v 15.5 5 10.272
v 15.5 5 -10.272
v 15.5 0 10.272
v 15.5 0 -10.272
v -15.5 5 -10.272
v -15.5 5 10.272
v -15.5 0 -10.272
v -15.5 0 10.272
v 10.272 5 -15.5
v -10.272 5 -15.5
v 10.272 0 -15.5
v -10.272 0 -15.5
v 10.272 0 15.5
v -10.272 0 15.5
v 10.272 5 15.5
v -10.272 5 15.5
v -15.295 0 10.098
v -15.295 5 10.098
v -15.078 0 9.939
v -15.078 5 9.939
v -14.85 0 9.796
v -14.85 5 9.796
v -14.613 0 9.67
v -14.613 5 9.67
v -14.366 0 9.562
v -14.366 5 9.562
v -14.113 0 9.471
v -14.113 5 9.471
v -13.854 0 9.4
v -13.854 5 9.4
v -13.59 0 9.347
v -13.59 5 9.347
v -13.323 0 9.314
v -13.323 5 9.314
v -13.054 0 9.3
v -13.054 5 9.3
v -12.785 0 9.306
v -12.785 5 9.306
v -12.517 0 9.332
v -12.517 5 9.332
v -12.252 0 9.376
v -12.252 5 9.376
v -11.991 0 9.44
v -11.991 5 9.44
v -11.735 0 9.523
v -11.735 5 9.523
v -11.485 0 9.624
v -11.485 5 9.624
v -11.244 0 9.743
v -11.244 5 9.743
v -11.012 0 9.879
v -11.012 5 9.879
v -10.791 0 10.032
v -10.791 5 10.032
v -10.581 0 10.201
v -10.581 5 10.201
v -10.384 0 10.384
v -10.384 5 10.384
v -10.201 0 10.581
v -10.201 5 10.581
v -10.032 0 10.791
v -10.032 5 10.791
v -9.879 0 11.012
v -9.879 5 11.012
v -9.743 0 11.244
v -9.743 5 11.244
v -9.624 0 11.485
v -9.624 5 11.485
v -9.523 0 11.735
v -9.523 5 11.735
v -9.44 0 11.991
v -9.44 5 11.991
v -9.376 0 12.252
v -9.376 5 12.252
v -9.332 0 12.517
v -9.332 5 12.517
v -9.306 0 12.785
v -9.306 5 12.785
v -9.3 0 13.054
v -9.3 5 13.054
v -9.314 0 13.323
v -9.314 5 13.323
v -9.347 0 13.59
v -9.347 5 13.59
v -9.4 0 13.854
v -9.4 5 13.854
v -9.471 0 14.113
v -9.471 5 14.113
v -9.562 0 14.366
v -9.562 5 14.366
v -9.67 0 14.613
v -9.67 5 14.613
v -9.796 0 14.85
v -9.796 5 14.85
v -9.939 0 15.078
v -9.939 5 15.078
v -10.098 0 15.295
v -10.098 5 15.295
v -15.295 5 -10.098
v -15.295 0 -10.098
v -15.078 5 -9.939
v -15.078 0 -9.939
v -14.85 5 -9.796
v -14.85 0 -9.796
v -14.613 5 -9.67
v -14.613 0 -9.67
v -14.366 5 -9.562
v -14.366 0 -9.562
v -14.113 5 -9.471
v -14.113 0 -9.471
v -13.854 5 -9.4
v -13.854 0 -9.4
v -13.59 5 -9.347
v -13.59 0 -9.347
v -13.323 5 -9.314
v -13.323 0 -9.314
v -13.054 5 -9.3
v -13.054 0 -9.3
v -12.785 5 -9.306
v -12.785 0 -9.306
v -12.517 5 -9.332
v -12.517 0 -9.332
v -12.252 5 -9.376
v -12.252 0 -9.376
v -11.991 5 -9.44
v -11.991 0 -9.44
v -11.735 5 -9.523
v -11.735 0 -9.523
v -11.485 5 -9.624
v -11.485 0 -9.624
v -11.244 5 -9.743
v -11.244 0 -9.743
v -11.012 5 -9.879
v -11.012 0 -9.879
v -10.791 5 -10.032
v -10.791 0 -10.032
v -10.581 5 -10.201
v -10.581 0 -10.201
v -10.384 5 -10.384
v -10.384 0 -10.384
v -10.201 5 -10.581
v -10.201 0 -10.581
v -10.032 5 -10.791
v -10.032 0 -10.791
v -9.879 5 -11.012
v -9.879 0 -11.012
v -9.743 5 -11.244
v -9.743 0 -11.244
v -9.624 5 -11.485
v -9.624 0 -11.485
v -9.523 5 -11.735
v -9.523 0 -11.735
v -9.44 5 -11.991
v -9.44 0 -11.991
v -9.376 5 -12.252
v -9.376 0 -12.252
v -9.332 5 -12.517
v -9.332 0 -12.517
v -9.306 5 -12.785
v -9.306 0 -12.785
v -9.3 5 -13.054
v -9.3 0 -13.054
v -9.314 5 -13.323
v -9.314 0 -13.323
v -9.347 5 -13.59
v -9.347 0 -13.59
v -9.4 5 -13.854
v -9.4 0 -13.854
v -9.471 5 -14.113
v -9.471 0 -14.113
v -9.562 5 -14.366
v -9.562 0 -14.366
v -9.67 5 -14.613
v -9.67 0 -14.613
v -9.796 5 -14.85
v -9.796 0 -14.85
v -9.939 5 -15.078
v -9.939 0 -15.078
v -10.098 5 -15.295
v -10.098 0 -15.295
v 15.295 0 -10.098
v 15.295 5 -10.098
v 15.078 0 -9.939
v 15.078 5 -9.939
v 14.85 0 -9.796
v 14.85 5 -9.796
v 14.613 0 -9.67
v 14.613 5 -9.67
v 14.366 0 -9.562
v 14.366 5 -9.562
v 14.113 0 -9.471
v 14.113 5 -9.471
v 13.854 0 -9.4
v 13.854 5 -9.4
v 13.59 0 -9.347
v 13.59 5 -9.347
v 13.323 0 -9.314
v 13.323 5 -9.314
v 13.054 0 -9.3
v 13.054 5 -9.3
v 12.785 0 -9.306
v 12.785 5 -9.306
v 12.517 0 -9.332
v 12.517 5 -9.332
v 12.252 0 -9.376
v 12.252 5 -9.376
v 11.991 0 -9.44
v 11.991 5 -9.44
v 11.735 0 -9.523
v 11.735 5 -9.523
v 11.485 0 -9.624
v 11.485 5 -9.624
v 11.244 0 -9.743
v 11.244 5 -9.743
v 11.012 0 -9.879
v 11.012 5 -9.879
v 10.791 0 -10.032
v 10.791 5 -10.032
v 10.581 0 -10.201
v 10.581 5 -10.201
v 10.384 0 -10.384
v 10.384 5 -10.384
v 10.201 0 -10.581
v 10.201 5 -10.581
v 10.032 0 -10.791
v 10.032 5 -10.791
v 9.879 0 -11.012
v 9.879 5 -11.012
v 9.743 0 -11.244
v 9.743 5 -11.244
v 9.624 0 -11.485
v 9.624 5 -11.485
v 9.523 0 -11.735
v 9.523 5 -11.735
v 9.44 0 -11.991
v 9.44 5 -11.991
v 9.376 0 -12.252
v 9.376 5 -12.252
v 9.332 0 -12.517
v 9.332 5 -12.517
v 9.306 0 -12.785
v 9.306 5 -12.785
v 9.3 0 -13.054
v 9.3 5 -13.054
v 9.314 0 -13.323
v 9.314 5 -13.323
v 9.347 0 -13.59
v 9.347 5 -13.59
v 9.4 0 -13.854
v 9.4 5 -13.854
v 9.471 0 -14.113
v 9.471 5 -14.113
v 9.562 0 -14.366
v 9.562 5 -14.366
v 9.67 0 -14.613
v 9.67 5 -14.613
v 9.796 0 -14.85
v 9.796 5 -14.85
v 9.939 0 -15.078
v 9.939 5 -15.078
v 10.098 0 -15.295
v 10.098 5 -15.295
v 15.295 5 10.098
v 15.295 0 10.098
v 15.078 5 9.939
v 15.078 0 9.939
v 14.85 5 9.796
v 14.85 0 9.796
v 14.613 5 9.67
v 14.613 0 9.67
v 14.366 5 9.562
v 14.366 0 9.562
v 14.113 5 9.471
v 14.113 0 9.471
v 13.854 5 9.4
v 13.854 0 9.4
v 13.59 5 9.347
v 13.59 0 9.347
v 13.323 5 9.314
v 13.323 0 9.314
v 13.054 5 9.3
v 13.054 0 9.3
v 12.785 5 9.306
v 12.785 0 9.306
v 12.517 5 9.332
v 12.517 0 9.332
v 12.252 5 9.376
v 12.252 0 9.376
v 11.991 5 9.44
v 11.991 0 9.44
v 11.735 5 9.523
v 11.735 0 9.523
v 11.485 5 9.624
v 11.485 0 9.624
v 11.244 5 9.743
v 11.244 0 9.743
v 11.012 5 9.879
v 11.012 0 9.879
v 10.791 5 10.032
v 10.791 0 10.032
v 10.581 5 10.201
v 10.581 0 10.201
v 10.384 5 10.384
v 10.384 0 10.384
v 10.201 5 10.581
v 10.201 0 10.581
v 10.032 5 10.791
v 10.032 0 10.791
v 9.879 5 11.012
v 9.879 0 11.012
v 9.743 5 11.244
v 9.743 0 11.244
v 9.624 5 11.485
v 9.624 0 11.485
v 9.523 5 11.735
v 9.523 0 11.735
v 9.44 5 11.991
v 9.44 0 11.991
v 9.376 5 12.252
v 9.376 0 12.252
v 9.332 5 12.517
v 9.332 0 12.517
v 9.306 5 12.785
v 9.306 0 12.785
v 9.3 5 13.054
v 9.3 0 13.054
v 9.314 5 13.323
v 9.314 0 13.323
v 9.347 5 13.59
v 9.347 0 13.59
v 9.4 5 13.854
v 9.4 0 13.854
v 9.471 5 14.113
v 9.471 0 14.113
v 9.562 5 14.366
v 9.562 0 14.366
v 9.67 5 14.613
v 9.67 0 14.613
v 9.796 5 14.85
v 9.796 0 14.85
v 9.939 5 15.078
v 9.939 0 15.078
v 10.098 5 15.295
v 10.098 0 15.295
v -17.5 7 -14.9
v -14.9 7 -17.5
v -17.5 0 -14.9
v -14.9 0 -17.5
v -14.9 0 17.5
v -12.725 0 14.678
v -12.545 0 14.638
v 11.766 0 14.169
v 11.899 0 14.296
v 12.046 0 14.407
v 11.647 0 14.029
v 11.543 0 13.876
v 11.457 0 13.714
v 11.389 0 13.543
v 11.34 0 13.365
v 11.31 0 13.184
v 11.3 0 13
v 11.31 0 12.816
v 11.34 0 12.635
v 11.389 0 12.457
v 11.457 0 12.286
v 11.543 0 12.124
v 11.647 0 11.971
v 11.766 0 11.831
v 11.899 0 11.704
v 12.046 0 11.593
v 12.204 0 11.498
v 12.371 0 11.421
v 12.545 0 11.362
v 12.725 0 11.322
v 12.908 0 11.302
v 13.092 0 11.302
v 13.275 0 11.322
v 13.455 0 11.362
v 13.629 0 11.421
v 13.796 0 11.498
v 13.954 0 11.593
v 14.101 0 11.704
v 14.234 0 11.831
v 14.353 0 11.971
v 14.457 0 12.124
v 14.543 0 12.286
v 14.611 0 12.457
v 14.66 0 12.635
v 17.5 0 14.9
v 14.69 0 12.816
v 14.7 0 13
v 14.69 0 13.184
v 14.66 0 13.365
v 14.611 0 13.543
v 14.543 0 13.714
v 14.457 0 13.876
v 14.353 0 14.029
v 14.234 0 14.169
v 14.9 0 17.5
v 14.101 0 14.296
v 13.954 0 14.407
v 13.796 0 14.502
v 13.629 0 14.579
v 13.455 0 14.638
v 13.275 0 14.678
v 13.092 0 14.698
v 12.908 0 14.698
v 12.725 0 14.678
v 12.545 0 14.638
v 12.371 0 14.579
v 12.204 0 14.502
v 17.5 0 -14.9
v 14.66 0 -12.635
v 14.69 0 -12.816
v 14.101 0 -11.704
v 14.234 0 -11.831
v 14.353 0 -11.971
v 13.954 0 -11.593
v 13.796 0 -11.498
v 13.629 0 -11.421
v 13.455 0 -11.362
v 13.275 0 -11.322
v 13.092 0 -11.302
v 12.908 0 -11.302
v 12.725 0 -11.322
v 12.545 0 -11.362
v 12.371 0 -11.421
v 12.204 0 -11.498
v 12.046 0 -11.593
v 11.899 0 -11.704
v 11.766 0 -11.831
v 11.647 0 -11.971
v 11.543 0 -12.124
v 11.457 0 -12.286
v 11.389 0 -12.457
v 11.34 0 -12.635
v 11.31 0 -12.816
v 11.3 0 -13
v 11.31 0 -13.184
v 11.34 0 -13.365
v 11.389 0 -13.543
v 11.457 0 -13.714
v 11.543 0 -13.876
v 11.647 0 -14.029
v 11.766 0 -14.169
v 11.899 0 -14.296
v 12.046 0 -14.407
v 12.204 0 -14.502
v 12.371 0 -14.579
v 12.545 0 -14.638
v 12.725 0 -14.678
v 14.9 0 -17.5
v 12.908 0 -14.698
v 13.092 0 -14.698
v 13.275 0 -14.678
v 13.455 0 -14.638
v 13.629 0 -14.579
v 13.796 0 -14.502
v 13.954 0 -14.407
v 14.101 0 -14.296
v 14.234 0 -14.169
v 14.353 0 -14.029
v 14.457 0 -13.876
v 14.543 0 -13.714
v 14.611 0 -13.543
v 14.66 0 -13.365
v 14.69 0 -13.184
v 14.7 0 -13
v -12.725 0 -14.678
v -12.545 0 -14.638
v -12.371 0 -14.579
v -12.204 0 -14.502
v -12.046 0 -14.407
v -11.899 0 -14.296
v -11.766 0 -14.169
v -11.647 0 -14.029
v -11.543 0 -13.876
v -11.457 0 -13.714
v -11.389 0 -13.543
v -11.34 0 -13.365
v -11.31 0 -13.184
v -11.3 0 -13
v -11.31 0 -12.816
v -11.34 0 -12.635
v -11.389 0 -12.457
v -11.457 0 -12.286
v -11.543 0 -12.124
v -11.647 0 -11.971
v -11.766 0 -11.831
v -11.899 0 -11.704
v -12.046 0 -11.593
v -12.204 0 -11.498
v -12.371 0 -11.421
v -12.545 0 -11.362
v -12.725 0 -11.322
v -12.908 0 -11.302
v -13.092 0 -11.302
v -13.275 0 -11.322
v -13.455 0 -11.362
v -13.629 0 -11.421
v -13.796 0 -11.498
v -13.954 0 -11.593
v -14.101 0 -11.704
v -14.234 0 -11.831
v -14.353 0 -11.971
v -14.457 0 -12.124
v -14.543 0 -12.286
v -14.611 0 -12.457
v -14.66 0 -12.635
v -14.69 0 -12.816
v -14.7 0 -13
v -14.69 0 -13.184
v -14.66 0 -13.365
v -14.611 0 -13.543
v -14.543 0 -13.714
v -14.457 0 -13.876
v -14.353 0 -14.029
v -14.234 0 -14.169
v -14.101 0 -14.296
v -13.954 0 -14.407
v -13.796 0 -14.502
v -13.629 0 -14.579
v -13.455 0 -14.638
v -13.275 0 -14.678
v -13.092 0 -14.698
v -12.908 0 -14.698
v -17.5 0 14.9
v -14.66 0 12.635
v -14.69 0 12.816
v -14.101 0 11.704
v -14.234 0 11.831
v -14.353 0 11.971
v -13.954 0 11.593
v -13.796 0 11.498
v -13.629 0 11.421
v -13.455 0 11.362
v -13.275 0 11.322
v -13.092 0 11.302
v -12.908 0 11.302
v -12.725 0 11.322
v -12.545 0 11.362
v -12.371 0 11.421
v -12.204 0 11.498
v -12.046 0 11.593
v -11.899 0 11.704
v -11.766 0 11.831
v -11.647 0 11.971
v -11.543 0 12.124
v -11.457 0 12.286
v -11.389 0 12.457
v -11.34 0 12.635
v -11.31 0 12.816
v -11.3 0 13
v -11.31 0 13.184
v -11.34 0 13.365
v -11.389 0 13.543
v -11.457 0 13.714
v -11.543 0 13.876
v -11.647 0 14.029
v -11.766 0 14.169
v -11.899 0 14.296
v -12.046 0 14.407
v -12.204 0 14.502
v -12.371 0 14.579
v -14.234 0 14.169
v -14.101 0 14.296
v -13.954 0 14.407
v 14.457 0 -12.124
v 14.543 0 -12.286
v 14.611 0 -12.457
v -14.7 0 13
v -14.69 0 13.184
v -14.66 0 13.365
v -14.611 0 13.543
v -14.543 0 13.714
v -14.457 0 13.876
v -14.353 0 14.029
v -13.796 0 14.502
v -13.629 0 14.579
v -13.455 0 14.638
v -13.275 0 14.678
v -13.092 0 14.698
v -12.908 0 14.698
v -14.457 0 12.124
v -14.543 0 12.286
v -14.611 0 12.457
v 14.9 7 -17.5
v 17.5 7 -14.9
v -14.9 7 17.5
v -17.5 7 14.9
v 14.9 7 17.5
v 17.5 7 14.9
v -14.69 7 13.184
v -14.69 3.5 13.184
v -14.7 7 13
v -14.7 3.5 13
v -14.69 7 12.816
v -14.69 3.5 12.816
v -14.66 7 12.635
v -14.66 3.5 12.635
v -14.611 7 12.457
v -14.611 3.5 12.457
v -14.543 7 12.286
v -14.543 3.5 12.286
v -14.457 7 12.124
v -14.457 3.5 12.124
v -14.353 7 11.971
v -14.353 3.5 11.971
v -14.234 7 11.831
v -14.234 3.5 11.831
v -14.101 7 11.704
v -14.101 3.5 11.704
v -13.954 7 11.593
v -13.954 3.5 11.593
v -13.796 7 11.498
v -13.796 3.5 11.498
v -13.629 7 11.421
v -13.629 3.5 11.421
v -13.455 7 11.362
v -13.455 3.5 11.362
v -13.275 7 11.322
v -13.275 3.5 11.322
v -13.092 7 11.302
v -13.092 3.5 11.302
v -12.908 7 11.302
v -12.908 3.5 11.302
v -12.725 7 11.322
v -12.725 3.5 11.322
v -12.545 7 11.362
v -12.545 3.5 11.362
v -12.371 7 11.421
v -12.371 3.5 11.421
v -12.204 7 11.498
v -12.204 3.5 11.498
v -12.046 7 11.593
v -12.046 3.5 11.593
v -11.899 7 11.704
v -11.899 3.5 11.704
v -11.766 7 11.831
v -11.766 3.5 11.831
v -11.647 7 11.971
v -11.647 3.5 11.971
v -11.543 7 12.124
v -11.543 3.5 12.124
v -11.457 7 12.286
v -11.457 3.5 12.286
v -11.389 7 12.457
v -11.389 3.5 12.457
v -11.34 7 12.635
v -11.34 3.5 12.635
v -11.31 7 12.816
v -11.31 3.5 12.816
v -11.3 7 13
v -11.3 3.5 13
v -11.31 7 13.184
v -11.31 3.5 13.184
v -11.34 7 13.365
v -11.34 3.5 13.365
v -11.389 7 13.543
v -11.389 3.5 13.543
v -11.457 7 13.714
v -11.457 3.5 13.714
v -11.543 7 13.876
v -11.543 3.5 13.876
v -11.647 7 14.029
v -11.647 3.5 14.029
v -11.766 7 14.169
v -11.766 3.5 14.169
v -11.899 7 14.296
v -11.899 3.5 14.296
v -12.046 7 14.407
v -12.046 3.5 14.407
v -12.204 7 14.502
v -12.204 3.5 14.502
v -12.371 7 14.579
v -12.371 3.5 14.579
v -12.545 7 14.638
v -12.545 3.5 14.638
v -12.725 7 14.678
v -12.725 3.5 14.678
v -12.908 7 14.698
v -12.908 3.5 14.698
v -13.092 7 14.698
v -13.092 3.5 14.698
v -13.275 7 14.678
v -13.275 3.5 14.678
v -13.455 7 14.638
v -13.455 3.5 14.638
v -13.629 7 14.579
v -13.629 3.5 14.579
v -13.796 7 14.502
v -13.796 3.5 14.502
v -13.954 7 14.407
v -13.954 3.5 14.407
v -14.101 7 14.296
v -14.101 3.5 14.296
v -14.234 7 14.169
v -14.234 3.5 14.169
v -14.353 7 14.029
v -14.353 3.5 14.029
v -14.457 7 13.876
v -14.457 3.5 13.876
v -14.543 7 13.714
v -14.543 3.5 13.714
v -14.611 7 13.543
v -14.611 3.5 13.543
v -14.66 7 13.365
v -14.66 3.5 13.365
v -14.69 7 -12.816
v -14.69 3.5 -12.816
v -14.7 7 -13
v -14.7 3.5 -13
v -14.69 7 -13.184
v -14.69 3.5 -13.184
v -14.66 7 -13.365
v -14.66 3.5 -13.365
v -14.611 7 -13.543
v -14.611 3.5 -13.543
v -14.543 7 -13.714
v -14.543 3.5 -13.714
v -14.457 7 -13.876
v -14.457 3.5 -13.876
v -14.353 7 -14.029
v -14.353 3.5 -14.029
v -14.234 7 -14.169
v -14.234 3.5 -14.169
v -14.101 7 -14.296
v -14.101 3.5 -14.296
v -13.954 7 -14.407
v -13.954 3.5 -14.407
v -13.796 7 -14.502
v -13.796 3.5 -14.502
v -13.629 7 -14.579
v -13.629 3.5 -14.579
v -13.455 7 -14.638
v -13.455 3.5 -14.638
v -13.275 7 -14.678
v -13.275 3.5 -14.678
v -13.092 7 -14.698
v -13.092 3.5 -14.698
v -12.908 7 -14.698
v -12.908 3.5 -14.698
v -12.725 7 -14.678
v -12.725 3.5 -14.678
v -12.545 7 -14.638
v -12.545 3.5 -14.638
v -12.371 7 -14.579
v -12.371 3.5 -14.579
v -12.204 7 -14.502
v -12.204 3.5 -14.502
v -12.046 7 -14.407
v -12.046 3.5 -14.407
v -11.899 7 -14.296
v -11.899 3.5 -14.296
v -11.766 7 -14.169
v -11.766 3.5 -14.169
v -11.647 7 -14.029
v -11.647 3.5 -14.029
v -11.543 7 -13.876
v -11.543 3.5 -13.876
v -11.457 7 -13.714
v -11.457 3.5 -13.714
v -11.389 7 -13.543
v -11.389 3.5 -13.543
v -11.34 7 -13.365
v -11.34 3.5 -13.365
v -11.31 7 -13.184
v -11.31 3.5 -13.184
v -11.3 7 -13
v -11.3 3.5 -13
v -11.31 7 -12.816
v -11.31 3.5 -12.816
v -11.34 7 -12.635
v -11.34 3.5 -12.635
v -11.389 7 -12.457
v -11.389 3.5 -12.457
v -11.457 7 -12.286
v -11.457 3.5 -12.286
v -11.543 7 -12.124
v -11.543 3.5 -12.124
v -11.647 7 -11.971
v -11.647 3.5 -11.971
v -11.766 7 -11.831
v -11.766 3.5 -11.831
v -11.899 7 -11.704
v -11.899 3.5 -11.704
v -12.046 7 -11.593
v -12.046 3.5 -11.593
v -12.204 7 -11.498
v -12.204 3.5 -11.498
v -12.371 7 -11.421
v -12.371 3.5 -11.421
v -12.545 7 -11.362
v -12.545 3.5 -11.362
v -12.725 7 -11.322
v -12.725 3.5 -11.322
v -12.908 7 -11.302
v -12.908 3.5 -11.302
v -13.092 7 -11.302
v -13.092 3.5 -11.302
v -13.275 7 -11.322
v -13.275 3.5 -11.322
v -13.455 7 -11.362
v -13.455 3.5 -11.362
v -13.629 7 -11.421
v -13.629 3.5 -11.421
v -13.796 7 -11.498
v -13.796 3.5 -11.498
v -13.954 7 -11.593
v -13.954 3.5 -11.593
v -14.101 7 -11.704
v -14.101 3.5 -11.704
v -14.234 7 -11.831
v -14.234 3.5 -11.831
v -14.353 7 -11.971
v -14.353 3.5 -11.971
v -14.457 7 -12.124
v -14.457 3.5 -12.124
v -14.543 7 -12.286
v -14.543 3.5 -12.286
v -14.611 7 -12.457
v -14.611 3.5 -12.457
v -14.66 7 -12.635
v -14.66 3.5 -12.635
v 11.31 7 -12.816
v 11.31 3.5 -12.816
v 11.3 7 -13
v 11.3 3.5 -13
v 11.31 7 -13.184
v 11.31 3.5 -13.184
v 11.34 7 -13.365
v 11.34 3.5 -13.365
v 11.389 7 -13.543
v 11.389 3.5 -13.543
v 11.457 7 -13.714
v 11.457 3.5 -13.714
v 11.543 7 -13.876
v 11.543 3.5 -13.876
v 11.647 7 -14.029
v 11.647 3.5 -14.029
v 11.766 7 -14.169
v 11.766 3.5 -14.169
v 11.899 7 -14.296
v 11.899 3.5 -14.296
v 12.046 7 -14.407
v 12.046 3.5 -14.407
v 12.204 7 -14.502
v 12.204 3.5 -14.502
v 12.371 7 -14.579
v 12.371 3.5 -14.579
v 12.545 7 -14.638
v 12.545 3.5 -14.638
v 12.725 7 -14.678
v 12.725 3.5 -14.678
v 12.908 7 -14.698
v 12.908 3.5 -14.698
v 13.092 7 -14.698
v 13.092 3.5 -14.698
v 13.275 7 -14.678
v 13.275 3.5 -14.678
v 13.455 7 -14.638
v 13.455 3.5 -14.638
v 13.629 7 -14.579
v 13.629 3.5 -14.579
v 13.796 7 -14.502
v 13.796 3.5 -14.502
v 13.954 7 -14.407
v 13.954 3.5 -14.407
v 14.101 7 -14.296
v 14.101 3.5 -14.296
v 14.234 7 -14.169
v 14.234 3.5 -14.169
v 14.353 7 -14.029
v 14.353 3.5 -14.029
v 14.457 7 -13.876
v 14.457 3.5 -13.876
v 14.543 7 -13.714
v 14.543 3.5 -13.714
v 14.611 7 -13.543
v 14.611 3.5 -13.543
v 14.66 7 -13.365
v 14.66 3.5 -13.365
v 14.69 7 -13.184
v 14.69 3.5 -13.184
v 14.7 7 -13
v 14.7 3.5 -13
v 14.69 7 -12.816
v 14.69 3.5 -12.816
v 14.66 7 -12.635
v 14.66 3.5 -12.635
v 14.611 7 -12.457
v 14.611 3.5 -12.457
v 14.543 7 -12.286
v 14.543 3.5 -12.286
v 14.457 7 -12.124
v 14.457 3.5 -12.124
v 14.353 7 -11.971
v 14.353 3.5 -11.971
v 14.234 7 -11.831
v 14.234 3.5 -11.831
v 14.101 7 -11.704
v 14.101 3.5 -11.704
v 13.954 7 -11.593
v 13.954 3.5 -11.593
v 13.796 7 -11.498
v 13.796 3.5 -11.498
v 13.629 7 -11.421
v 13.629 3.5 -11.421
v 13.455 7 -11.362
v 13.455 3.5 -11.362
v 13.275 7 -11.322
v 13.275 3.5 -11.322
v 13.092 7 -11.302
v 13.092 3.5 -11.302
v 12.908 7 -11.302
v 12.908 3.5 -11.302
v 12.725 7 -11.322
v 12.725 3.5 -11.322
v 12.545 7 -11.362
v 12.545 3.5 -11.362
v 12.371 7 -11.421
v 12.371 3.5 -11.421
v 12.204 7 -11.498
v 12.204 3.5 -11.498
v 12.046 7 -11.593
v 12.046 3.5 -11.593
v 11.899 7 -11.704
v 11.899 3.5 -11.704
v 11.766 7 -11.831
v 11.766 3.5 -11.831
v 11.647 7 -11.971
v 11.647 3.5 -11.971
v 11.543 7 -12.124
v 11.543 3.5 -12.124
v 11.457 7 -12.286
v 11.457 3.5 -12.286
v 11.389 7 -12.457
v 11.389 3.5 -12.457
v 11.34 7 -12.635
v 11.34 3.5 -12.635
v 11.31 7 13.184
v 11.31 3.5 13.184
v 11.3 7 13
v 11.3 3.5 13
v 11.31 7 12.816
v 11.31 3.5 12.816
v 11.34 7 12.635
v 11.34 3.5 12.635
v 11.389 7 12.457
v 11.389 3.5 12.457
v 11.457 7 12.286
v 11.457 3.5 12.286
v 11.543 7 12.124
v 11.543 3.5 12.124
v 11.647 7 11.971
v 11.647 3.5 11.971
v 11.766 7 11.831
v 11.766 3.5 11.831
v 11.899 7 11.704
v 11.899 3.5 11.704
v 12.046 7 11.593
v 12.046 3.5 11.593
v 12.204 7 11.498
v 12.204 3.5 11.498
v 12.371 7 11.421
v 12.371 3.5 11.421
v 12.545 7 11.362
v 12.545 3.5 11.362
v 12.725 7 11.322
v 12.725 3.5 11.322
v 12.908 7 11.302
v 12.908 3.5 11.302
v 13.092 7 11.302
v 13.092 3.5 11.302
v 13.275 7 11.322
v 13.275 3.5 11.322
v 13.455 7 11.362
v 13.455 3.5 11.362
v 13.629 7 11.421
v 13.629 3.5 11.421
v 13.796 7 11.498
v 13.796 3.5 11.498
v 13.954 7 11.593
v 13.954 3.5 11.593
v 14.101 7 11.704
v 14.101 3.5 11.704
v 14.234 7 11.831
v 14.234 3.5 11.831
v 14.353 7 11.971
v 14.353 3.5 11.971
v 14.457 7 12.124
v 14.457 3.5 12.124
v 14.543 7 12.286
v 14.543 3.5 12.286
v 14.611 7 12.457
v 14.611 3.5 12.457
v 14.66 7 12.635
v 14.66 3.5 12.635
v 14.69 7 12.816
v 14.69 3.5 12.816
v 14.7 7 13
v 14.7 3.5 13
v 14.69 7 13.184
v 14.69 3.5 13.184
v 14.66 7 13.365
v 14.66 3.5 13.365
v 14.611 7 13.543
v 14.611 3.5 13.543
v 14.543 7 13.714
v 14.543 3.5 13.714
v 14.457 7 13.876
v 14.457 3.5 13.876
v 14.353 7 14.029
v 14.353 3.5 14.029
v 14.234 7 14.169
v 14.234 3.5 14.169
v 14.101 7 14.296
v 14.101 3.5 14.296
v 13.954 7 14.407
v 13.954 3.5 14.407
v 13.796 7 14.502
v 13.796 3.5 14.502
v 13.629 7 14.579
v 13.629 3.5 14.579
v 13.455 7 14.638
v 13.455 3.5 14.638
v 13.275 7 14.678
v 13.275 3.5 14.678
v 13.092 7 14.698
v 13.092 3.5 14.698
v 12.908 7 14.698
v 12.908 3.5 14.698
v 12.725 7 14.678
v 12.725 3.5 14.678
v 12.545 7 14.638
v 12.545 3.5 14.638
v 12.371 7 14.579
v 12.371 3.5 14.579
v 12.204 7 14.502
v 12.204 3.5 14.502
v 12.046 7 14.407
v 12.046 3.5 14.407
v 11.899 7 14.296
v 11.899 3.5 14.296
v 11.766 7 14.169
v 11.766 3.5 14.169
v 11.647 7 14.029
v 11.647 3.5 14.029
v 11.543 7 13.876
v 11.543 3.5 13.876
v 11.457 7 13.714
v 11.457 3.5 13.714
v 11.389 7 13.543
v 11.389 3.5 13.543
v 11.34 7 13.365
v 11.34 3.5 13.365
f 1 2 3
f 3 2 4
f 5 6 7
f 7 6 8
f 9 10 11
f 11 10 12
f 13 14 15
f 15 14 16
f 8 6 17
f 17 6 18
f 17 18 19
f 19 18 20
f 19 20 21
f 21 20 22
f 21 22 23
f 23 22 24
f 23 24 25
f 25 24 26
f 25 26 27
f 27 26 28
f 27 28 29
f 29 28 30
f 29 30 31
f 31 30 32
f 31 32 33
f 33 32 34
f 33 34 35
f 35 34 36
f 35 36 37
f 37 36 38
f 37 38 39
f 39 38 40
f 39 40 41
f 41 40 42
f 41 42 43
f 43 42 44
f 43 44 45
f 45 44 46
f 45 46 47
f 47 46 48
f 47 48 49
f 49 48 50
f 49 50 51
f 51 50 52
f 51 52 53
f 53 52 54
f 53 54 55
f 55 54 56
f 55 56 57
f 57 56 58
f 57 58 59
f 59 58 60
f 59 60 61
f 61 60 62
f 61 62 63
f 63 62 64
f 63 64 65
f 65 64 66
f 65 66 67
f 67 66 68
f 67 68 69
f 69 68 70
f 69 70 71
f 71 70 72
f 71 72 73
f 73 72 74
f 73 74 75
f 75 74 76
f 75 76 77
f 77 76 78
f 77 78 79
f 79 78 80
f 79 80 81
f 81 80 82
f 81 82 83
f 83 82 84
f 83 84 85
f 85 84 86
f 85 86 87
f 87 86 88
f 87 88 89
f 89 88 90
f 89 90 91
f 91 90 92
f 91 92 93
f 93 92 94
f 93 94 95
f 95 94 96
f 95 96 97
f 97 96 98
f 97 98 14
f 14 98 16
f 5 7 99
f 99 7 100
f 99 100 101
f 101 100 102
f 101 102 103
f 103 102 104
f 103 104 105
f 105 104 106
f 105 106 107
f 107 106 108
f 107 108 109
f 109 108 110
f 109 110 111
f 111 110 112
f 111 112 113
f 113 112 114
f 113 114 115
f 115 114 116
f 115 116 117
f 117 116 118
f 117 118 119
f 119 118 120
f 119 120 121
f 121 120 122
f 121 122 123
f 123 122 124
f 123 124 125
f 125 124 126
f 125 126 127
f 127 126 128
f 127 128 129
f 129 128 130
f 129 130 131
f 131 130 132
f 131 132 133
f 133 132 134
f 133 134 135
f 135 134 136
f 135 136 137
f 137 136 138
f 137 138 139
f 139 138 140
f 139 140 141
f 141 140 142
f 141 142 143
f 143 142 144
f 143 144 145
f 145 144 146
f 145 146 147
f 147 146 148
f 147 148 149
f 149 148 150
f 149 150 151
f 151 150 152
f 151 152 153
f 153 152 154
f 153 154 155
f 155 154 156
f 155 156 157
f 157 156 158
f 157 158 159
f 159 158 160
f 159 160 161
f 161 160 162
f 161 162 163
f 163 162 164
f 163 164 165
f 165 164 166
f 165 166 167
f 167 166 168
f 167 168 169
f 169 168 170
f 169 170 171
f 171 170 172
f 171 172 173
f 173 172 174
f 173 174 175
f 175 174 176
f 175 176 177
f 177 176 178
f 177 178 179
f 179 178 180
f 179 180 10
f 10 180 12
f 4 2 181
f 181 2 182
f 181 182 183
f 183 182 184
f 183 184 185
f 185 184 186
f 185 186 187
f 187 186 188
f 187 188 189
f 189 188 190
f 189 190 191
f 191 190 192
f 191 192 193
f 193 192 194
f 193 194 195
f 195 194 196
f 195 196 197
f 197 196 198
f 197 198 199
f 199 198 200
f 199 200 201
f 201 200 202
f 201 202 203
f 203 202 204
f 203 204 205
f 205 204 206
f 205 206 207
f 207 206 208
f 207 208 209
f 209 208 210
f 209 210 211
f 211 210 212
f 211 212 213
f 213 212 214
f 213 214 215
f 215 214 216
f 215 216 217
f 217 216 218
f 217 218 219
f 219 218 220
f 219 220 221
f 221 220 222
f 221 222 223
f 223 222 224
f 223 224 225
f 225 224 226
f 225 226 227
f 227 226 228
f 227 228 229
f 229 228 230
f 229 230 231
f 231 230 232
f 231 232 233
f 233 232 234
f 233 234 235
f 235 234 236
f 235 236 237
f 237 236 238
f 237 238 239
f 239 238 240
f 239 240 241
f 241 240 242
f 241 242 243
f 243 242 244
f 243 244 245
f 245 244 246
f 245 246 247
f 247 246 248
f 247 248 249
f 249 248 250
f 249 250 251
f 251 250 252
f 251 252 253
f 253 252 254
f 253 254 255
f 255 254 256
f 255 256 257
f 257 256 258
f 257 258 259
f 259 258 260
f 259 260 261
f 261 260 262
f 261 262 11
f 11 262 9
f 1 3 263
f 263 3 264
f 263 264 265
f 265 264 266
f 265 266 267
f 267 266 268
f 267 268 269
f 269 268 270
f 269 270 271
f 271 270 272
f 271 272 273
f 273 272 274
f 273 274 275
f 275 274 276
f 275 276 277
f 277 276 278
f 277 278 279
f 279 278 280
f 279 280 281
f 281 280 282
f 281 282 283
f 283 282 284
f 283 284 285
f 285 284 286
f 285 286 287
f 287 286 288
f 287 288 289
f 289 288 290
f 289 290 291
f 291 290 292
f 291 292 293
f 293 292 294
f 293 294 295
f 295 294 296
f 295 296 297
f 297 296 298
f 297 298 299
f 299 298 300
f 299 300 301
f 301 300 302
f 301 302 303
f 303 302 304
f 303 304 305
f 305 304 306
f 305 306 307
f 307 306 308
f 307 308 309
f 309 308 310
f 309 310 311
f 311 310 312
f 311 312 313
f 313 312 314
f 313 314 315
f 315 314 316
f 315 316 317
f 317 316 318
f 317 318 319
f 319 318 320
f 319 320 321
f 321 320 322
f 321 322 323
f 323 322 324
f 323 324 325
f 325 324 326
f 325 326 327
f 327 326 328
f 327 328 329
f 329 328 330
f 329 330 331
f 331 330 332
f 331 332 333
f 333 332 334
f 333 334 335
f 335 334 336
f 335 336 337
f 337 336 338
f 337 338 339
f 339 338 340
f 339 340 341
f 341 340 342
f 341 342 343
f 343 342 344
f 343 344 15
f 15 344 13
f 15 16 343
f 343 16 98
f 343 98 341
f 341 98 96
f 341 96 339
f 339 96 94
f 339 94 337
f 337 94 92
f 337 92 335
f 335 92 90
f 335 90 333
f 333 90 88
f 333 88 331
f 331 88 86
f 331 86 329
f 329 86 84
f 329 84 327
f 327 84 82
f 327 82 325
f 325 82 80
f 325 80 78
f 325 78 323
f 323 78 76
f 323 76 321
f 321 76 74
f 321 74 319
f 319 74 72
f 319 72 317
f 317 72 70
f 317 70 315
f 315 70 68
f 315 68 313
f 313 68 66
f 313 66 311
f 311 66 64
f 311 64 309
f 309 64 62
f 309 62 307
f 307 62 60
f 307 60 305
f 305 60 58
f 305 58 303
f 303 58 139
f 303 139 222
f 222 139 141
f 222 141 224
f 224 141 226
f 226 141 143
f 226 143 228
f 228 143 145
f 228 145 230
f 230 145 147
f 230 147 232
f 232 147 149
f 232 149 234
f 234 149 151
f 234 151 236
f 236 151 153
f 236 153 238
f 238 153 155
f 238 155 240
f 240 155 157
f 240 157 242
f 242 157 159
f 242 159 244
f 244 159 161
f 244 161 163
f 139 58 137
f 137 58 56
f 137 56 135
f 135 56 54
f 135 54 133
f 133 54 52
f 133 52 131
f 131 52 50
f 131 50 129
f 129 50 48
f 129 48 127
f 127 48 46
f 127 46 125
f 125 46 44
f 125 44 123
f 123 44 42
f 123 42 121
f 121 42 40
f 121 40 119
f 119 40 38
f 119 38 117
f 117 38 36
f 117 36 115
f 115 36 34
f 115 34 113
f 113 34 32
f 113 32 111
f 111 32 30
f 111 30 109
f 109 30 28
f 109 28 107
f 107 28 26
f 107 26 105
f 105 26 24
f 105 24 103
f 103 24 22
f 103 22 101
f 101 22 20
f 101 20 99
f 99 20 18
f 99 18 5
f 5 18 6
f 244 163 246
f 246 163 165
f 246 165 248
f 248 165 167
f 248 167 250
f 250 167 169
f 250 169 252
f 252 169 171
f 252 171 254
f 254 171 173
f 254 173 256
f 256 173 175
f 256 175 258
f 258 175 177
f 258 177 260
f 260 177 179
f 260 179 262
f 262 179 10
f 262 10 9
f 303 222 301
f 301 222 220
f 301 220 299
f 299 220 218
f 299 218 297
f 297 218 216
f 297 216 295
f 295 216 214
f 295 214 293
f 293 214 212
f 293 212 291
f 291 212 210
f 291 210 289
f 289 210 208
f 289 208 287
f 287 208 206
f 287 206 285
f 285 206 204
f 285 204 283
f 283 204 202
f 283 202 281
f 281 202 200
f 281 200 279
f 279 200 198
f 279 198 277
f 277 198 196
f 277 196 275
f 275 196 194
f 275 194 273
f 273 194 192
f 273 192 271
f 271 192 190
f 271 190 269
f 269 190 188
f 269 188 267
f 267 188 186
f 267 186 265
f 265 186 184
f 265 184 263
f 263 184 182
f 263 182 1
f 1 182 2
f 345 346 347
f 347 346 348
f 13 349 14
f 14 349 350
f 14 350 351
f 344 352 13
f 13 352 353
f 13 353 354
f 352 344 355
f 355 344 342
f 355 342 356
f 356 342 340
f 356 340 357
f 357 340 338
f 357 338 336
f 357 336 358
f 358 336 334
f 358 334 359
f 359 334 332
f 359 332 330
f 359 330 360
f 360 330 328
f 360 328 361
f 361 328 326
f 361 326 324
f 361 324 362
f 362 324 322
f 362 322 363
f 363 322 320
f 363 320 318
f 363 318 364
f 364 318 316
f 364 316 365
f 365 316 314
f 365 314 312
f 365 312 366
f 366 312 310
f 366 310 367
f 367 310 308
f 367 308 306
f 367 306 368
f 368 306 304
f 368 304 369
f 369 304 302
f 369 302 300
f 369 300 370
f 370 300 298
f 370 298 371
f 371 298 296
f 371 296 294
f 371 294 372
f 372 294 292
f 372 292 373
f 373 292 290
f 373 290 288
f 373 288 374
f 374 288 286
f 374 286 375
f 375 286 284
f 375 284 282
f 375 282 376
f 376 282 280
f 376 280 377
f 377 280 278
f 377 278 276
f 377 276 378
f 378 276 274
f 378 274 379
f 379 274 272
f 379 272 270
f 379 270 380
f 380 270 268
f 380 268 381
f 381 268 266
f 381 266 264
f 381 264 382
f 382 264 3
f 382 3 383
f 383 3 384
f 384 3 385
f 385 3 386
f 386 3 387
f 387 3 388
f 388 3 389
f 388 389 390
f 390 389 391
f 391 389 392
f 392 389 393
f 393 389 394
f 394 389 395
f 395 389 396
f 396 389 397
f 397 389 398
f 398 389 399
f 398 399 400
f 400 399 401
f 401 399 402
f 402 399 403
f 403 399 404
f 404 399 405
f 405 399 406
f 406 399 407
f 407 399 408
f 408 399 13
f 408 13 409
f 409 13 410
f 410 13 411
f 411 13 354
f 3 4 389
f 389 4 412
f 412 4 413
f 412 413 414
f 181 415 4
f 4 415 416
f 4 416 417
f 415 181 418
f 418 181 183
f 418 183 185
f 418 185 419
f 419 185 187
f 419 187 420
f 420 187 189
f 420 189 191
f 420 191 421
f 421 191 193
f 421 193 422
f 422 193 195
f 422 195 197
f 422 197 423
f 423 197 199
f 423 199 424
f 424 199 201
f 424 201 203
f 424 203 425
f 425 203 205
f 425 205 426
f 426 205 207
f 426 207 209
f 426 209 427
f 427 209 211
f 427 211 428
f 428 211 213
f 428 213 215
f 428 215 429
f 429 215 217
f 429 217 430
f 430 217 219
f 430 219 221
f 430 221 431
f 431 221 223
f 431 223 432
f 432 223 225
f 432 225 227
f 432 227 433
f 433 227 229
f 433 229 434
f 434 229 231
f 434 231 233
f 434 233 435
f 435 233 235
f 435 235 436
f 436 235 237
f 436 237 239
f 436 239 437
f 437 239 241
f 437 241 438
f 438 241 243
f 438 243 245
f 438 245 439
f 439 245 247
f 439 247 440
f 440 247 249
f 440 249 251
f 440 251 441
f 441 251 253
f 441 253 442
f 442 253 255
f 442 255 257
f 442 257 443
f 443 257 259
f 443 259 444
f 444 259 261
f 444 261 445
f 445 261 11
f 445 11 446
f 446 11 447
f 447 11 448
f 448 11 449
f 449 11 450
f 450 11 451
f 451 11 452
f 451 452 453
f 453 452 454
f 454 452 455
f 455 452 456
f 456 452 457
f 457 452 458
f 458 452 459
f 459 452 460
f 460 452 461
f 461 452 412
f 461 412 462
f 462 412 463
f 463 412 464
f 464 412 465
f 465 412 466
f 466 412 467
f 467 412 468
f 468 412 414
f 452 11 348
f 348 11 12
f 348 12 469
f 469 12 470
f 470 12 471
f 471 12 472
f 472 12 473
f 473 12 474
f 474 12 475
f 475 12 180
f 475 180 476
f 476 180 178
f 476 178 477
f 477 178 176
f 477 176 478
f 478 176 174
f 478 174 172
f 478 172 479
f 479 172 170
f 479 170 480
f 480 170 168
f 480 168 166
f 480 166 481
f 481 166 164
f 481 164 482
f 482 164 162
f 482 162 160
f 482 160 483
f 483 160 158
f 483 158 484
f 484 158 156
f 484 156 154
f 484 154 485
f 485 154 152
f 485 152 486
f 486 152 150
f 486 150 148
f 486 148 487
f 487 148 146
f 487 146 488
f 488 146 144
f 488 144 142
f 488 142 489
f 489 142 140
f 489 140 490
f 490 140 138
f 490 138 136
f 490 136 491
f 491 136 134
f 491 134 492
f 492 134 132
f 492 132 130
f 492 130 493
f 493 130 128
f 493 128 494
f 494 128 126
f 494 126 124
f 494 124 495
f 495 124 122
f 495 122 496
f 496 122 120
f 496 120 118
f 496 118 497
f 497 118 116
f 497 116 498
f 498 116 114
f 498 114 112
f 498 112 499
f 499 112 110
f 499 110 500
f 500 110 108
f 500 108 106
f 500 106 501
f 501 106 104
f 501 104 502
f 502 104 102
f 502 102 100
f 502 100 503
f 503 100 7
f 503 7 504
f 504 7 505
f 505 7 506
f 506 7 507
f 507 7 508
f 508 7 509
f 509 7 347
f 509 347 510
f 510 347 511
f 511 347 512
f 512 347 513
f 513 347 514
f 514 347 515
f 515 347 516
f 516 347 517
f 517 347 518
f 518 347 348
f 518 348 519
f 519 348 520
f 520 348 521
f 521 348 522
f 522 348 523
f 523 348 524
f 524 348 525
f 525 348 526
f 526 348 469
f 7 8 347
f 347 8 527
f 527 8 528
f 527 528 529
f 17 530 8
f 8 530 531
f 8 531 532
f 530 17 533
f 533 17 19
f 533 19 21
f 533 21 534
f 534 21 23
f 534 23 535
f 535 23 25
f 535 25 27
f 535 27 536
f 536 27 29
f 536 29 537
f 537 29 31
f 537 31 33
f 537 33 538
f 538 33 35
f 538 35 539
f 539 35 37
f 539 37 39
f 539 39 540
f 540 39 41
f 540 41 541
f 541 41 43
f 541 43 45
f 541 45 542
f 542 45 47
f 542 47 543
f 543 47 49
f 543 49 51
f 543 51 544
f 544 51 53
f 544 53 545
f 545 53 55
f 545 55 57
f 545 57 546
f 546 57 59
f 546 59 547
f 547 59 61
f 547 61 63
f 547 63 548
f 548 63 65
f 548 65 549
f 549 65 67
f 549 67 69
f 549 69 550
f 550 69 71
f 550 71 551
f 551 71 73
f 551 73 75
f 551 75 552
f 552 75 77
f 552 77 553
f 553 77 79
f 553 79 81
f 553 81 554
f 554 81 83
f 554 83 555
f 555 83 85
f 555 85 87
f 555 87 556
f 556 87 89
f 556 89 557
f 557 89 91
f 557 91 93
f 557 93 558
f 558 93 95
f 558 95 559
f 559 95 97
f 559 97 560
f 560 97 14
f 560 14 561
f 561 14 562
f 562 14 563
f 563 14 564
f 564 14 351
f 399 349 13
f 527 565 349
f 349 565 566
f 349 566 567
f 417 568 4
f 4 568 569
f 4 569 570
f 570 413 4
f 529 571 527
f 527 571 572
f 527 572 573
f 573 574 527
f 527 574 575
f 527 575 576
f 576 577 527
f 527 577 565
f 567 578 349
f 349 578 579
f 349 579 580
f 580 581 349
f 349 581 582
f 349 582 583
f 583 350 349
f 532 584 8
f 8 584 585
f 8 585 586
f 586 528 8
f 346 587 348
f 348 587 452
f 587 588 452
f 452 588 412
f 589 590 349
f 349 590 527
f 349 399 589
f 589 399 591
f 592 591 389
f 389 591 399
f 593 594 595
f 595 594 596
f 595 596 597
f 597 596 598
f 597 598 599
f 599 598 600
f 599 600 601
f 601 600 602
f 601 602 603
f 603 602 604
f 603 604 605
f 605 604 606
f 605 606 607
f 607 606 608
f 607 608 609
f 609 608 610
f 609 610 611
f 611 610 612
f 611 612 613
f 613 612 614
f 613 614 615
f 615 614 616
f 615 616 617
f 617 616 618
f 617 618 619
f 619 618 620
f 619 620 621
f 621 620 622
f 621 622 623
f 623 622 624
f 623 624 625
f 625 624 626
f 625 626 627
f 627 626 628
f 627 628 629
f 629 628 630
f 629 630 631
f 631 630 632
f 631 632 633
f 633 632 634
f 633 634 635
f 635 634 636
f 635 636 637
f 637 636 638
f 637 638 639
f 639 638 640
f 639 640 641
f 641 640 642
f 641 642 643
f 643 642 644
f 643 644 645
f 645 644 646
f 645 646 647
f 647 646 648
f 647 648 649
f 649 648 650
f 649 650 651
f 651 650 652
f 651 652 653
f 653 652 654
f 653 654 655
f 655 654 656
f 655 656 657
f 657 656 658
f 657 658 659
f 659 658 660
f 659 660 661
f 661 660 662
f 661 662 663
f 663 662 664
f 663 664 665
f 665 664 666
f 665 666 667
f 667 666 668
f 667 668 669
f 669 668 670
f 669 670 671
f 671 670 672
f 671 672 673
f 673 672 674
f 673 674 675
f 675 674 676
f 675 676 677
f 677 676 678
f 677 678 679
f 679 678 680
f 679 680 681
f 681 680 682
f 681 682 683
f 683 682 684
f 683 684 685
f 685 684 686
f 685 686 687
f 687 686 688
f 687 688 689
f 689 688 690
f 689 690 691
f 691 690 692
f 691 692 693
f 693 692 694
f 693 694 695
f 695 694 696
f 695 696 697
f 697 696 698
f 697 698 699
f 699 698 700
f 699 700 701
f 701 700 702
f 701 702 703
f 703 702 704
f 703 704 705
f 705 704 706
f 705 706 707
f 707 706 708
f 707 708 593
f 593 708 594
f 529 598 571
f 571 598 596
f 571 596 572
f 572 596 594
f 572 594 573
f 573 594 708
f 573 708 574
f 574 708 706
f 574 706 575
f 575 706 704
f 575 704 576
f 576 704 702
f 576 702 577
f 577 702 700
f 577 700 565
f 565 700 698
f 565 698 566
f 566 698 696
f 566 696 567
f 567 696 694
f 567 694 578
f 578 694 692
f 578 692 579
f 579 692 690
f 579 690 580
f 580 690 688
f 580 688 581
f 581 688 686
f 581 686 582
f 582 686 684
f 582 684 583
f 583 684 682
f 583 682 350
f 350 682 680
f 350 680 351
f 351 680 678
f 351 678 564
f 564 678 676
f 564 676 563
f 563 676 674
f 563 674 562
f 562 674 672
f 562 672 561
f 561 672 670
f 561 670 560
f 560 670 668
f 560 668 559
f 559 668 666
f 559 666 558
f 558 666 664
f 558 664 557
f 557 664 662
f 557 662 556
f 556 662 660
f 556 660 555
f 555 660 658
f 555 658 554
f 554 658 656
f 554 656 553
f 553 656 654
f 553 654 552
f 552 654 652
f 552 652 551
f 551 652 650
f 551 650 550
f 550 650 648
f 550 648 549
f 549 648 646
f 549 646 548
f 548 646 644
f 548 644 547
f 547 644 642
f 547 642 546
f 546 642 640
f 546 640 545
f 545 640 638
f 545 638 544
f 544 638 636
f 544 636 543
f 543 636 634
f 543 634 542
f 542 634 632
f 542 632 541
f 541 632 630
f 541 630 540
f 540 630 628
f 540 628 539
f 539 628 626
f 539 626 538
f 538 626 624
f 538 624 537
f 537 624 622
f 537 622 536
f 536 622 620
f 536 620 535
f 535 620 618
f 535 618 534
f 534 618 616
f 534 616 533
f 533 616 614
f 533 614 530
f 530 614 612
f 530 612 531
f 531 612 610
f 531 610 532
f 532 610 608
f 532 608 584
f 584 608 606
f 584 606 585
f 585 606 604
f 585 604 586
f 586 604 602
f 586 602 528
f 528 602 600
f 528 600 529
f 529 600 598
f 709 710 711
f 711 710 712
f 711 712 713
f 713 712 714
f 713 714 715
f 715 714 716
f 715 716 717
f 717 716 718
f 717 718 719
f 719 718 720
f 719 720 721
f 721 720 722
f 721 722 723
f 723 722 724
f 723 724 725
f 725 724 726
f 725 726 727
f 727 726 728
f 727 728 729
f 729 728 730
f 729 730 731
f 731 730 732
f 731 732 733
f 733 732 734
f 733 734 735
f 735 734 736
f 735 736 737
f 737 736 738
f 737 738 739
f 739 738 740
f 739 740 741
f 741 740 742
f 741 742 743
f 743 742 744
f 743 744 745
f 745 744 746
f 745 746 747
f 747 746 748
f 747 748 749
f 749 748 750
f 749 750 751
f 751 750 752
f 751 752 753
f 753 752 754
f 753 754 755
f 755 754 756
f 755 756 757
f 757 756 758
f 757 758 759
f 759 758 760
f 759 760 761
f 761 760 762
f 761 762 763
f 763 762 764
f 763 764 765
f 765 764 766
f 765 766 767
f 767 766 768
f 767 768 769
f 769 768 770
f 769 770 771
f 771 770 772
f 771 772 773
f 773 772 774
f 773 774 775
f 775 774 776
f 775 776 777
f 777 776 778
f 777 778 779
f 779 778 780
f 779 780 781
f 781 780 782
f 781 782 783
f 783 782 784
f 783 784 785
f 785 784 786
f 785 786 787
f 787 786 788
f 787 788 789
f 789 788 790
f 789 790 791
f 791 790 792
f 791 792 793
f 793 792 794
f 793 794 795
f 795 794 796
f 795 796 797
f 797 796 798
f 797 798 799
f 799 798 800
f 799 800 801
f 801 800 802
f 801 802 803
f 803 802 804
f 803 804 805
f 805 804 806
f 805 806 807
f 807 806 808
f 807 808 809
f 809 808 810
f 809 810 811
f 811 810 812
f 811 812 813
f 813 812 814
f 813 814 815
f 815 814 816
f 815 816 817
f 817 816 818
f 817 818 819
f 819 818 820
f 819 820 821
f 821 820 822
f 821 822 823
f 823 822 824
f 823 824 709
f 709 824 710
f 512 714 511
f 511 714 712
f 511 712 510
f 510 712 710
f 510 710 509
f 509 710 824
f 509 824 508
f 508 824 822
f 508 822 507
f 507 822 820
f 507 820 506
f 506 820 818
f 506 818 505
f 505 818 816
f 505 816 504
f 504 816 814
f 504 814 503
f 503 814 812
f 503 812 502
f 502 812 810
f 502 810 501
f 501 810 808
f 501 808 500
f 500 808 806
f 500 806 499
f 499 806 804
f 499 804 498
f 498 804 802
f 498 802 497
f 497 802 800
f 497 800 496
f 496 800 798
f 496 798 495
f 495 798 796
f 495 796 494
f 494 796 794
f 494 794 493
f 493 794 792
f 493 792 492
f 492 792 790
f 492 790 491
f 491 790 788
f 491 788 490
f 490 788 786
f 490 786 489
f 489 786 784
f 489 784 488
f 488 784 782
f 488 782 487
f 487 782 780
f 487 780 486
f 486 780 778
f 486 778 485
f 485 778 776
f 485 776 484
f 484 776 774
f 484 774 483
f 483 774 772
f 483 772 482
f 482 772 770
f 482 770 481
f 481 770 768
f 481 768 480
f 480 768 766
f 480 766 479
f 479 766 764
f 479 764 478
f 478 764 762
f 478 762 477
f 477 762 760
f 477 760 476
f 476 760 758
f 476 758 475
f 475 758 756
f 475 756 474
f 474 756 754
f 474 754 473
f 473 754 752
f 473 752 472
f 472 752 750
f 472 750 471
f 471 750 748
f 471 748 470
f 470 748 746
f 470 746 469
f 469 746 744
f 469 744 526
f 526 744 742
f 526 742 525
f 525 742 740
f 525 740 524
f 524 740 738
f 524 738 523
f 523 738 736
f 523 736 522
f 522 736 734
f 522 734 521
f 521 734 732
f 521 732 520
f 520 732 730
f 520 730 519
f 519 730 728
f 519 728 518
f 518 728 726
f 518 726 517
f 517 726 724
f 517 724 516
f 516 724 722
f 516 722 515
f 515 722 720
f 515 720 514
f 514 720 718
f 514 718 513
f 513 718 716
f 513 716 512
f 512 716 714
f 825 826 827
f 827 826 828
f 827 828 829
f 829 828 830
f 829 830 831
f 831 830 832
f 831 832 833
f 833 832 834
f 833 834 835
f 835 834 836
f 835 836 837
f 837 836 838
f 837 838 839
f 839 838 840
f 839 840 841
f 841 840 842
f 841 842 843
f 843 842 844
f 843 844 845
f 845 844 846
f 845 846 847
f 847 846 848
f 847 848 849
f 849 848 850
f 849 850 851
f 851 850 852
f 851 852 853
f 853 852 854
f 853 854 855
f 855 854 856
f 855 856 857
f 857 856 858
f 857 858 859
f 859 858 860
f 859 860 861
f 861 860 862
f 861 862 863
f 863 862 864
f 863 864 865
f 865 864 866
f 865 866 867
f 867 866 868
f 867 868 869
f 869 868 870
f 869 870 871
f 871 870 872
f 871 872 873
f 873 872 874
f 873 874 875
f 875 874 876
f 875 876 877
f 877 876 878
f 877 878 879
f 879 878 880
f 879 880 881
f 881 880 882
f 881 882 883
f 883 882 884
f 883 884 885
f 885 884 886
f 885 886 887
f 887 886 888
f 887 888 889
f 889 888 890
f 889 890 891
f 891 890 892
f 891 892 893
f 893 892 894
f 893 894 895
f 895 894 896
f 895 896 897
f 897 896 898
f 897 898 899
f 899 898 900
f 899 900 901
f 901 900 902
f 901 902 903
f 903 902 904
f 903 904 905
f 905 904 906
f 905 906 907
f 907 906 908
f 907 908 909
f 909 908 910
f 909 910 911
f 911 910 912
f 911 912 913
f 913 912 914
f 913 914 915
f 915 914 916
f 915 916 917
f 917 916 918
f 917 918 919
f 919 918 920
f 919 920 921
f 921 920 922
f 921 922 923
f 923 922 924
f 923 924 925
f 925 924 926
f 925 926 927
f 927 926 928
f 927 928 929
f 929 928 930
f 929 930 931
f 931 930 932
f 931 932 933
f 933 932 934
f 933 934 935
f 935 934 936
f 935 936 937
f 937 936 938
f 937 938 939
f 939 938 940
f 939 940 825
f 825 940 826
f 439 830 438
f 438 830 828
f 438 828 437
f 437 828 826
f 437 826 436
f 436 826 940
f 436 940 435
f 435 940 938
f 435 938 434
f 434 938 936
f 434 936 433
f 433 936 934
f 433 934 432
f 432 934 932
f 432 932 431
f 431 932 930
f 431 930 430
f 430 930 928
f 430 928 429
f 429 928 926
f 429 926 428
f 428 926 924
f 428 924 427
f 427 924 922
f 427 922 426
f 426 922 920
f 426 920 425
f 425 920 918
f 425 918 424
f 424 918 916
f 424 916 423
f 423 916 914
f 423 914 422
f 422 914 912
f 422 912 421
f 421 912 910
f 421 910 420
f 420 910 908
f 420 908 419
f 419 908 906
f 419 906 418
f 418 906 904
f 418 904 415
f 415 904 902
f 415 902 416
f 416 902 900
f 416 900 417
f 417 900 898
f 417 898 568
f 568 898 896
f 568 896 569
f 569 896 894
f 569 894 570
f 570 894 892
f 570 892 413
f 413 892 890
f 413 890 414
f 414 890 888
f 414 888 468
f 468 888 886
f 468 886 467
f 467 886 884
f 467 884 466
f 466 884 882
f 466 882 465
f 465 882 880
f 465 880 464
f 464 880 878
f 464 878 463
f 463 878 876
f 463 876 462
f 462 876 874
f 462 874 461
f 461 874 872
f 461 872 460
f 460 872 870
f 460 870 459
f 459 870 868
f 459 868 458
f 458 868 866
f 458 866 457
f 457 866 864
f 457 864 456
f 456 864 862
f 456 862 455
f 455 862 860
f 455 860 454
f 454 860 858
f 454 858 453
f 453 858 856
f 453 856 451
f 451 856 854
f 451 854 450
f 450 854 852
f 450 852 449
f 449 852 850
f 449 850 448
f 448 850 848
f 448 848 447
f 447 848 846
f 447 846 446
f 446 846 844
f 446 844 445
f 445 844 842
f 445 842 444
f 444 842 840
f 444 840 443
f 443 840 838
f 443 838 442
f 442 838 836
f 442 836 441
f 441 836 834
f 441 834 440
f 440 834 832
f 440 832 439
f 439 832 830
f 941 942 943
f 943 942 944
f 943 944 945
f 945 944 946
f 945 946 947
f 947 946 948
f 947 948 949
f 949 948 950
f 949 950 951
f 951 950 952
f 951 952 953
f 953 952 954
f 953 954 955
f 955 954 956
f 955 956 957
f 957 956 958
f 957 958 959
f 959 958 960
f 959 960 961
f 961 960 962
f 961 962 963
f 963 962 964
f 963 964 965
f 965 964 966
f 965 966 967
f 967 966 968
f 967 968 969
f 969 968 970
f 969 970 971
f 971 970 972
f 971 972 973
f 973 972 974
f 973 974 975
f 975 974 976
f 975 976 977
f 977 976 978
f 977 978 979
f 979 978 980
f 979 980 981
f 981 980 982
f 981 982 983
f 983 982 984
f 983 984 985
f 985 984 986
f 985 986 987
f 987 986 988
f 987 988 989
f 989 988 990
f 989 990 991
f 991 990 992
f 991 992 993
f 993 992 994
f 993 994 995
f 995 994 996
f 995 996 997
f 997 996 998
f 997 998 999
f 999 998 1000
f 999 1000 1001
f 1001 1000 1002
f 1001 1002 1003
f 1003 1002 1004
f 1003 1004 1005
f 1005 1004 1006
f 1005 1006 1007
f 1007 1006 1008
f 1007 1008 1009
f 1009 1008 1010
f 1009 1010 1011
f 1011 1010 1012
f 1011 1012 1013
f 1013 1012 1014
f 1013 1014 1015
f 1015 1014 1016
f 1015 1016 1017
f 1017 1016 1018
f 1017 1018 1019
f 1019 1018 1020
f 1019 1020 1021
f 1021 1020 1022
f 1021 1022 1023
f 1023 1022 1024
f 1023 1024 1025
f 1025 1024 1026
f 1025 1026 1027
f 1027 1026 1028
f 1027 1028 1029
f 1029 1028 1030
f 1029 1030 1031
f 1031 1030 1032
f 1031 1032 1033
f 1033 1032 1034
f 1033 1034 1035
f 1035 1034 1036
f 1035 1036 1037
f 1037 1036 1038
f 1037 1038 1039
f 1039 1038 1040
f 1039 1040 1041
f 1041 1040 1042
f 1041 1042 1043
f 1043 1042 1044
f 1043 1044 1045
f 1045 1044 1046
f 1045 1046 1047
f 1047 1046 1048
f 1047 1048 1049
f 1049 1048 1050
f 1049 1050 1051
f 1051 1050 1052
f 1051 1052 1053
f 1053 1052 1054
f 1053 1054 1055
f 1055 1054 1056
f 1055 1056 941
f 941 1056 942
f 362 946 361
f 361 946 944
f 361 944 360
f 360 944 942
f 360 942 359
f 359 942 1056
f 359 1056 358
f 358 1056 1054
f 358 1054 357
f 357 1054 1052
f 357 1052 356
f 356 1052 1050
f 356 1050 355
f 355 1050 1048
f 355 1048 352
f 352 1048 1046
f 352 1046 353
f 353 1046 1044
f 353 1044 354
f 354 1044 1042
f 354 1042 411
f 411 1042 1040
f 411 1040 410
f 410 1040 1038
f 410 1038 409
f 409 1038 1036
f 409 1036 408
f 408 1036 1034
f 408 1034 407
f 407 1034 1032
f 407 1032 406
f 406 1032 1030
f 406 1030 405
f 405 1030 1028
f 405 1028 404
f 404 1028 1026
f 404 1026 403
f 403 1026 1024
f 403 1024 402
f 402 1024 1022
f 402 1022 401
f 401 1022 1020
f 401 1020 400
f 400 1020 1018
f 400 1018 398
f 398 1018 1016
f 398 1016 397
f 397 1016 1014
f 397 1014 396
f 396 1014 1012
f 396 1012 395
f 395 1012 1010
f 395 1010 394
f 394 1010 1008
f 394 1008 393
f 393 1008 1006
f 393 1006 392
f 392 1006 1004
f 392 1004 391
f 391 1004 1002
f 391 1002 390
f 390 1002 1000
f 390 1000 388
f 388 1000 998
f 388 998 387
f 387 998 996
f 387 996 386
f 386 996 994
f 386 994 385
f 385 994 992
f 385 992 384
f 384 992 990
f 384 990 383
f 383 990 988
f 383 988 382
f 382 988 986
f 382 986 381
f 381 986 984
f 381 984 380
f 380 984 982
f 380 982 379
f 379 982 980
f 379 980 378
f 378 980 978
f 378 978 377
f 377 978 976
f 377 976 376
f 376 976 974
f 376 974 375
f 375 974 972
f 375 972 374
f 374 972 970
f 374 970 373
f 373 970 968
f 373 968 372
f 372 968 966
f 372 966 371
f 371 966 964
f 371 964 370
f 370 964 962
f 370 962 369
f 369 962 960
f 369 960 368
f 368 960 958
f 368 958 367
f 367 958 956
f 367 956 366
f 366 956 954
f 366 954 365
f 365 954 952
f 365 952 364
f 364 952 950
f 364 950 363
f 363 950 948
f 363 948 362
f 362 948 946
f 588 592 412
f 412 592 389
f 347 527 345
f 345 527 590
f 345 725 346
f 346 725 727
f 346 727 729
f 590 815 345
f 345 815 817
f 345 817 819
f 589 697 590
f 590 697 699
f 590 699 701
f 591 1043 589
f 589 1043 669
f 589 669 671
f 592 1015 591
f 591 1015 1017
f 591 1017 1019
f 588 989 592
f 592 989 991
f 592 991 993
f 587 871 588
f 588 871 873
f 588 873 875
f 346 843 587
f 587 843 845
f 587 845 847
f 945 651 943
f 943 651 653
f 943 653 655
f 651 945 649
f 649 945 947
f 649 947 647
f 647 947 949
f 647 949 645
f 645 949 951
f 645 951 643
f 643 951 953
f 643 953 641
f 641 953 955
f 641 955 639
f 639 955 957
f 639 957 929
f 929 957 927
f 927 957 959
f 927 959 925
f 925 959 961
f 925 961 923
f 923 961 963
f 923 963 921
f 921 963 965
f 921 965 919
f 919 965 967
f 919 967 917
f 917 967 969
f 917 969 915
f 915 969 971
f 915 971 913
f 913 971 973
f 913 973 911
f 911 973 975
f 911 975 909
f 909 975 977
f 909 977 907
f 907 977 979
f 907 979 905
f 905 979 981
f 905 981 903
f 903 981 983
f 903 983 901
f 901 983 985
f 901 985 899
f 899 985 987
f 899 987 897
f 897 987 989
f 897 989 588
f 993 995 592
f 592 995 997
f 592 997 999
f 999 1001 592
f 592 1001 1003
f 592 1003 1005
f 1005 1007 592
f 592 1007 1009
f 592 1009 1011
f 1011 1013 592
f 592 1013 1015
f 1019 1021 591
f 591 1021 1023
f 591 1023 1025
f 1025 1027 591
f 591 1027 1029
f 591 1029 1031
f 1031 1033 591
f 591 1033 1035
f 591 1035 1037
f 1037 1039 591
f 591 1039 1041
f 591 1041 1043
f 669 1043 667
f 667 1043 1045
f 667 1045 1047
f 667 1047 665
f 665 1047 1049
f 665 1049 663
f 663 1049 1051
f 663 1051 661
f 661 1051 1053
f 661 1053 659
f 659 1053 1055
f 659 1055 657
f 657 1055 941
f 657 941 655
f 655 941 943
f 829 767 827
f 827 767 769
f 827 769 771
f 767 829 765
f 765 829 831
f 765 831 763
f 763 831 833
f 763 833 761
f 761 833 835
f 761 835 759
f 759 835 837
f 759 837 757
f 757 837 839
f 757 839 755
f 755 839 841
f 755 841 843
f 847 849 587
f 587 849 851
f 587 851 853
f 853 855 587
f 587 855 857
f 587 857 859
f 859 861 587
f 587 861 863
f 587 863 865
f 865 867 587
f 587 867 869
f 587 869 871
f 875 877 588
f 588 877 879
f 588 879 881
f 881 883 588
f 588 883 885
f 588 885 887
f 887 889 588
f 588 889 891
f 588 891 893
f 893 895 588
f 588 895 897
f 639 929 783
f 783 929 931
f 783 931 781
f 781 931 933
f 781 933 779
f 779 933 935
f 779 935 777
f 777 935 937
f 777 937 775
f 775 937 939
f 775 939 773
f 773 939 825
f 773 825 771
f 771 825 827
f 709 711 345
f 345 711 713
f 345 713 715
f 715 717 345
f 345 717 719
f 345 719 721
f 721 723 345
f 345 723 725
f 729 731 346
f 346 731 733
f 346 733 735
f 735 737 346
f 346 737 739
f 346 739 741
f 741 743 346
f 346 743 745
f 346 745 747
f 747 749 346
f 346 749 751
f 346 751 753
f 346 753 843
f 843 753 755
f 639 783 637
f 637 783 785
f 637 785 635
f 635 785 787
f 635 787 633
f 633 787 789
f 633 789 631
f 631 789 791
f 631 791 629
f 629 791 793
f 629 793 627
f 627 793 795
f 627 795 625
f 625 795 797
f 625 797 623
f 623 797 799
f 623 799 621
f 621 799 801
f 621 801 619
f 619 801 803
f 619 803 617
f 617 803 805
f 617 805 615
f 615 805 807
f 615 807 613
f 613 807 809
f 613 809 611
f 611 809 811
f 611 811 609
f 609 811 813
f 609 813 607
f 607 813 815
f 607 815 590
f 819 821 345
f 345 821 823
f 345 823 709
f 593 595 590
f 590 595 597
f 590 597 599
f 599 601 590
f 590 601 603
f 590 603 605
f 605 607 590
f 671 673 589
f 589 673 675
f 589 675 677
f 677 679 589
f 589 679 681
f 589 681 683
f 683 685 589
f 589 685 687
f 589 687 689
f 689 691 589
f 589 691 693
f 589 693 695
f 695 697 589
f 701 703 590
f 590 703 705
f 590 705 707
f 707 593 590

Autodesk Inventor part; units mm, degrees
ref_plane "YZ Plane" through (0, 0, 0) normal (1, 0, 0) x (0, 1, 0)
ref_plane "XZ Plane" through (0, 0, 0) normal (0, 1, 0) x (-1, 0, 0)
ref_plane "XY Plane" through (0, 0, 0) normal (0, 0, 1) x (1, 0, 0)
sketch "Sketch1" plane through (0, 0, 0) normal (0, 1, 0) x (-1, 0, 0)
  line L0 (-17.5, 17.5) -> (17.5, 17.5)
  line L1 (17.5, 17.5) -> (17.5, -17.5)
  line L2 (17.5, -17.5) -> (-17.5, -17.5)
  line L3 (-17.5, -17.5) -> (-17.5, 17.5)
  line L4 (-17.5, 17.5) -> (17.5, -17.5) construction
  line L5 (17.5, 17.5) -> (-17.5, -17.5) construction
  line L6 (-13, -13) -> (13, -13) construction
  line L7 (13, -13) -> (13, 13) construction
  line L8 (13, 13) -> (-13, 13) construction
  line L9 (-13, 13) -> (-13, -13) construction
  line L10 (-13, -13) -> (13, 13) construction
  line L11 (13, -13) -> (-13, 13) construction
  circle A0 centre (13, 13) radius 1.7
  circle A1 centre (13, -13) radius 1.7
  circle A2 centre (-13, -13) radius 1.7
  circle A3 centre (-13, 13) radius 1.7
  point P0 (0, 0)
  dimension "d0" = 35
  dimension "d1" = 35
  dimension "d2" = 3.4
  dimension "d3" = 3.4
  dimension "d4" = 3.4
  dimension "d5" = 3.4
  dimension "d6" = 26
  dimension "d7" = 26
extrude "Extrusion1" add sketch "Sketch1" along normal blind 7
chamfer "Chamfer1" distance 2.6 angle 45 4 edges at (17.5, 3.5, 17.5) (-17.5, 3.5, 17.5) (17.5, 3.5, -17.5) (-17.5, 3.5, -17.5)
shell "Shell2" thickness 2 removed faces 1 at (-3.9092, 0, 3.9576)
equation "\"d1\" = d0"
equation "\"d3\" = d2"
equation "\"d4\" = d2"
equation "\"d5\" = d2"
properties part number "PCB_Spacer"
